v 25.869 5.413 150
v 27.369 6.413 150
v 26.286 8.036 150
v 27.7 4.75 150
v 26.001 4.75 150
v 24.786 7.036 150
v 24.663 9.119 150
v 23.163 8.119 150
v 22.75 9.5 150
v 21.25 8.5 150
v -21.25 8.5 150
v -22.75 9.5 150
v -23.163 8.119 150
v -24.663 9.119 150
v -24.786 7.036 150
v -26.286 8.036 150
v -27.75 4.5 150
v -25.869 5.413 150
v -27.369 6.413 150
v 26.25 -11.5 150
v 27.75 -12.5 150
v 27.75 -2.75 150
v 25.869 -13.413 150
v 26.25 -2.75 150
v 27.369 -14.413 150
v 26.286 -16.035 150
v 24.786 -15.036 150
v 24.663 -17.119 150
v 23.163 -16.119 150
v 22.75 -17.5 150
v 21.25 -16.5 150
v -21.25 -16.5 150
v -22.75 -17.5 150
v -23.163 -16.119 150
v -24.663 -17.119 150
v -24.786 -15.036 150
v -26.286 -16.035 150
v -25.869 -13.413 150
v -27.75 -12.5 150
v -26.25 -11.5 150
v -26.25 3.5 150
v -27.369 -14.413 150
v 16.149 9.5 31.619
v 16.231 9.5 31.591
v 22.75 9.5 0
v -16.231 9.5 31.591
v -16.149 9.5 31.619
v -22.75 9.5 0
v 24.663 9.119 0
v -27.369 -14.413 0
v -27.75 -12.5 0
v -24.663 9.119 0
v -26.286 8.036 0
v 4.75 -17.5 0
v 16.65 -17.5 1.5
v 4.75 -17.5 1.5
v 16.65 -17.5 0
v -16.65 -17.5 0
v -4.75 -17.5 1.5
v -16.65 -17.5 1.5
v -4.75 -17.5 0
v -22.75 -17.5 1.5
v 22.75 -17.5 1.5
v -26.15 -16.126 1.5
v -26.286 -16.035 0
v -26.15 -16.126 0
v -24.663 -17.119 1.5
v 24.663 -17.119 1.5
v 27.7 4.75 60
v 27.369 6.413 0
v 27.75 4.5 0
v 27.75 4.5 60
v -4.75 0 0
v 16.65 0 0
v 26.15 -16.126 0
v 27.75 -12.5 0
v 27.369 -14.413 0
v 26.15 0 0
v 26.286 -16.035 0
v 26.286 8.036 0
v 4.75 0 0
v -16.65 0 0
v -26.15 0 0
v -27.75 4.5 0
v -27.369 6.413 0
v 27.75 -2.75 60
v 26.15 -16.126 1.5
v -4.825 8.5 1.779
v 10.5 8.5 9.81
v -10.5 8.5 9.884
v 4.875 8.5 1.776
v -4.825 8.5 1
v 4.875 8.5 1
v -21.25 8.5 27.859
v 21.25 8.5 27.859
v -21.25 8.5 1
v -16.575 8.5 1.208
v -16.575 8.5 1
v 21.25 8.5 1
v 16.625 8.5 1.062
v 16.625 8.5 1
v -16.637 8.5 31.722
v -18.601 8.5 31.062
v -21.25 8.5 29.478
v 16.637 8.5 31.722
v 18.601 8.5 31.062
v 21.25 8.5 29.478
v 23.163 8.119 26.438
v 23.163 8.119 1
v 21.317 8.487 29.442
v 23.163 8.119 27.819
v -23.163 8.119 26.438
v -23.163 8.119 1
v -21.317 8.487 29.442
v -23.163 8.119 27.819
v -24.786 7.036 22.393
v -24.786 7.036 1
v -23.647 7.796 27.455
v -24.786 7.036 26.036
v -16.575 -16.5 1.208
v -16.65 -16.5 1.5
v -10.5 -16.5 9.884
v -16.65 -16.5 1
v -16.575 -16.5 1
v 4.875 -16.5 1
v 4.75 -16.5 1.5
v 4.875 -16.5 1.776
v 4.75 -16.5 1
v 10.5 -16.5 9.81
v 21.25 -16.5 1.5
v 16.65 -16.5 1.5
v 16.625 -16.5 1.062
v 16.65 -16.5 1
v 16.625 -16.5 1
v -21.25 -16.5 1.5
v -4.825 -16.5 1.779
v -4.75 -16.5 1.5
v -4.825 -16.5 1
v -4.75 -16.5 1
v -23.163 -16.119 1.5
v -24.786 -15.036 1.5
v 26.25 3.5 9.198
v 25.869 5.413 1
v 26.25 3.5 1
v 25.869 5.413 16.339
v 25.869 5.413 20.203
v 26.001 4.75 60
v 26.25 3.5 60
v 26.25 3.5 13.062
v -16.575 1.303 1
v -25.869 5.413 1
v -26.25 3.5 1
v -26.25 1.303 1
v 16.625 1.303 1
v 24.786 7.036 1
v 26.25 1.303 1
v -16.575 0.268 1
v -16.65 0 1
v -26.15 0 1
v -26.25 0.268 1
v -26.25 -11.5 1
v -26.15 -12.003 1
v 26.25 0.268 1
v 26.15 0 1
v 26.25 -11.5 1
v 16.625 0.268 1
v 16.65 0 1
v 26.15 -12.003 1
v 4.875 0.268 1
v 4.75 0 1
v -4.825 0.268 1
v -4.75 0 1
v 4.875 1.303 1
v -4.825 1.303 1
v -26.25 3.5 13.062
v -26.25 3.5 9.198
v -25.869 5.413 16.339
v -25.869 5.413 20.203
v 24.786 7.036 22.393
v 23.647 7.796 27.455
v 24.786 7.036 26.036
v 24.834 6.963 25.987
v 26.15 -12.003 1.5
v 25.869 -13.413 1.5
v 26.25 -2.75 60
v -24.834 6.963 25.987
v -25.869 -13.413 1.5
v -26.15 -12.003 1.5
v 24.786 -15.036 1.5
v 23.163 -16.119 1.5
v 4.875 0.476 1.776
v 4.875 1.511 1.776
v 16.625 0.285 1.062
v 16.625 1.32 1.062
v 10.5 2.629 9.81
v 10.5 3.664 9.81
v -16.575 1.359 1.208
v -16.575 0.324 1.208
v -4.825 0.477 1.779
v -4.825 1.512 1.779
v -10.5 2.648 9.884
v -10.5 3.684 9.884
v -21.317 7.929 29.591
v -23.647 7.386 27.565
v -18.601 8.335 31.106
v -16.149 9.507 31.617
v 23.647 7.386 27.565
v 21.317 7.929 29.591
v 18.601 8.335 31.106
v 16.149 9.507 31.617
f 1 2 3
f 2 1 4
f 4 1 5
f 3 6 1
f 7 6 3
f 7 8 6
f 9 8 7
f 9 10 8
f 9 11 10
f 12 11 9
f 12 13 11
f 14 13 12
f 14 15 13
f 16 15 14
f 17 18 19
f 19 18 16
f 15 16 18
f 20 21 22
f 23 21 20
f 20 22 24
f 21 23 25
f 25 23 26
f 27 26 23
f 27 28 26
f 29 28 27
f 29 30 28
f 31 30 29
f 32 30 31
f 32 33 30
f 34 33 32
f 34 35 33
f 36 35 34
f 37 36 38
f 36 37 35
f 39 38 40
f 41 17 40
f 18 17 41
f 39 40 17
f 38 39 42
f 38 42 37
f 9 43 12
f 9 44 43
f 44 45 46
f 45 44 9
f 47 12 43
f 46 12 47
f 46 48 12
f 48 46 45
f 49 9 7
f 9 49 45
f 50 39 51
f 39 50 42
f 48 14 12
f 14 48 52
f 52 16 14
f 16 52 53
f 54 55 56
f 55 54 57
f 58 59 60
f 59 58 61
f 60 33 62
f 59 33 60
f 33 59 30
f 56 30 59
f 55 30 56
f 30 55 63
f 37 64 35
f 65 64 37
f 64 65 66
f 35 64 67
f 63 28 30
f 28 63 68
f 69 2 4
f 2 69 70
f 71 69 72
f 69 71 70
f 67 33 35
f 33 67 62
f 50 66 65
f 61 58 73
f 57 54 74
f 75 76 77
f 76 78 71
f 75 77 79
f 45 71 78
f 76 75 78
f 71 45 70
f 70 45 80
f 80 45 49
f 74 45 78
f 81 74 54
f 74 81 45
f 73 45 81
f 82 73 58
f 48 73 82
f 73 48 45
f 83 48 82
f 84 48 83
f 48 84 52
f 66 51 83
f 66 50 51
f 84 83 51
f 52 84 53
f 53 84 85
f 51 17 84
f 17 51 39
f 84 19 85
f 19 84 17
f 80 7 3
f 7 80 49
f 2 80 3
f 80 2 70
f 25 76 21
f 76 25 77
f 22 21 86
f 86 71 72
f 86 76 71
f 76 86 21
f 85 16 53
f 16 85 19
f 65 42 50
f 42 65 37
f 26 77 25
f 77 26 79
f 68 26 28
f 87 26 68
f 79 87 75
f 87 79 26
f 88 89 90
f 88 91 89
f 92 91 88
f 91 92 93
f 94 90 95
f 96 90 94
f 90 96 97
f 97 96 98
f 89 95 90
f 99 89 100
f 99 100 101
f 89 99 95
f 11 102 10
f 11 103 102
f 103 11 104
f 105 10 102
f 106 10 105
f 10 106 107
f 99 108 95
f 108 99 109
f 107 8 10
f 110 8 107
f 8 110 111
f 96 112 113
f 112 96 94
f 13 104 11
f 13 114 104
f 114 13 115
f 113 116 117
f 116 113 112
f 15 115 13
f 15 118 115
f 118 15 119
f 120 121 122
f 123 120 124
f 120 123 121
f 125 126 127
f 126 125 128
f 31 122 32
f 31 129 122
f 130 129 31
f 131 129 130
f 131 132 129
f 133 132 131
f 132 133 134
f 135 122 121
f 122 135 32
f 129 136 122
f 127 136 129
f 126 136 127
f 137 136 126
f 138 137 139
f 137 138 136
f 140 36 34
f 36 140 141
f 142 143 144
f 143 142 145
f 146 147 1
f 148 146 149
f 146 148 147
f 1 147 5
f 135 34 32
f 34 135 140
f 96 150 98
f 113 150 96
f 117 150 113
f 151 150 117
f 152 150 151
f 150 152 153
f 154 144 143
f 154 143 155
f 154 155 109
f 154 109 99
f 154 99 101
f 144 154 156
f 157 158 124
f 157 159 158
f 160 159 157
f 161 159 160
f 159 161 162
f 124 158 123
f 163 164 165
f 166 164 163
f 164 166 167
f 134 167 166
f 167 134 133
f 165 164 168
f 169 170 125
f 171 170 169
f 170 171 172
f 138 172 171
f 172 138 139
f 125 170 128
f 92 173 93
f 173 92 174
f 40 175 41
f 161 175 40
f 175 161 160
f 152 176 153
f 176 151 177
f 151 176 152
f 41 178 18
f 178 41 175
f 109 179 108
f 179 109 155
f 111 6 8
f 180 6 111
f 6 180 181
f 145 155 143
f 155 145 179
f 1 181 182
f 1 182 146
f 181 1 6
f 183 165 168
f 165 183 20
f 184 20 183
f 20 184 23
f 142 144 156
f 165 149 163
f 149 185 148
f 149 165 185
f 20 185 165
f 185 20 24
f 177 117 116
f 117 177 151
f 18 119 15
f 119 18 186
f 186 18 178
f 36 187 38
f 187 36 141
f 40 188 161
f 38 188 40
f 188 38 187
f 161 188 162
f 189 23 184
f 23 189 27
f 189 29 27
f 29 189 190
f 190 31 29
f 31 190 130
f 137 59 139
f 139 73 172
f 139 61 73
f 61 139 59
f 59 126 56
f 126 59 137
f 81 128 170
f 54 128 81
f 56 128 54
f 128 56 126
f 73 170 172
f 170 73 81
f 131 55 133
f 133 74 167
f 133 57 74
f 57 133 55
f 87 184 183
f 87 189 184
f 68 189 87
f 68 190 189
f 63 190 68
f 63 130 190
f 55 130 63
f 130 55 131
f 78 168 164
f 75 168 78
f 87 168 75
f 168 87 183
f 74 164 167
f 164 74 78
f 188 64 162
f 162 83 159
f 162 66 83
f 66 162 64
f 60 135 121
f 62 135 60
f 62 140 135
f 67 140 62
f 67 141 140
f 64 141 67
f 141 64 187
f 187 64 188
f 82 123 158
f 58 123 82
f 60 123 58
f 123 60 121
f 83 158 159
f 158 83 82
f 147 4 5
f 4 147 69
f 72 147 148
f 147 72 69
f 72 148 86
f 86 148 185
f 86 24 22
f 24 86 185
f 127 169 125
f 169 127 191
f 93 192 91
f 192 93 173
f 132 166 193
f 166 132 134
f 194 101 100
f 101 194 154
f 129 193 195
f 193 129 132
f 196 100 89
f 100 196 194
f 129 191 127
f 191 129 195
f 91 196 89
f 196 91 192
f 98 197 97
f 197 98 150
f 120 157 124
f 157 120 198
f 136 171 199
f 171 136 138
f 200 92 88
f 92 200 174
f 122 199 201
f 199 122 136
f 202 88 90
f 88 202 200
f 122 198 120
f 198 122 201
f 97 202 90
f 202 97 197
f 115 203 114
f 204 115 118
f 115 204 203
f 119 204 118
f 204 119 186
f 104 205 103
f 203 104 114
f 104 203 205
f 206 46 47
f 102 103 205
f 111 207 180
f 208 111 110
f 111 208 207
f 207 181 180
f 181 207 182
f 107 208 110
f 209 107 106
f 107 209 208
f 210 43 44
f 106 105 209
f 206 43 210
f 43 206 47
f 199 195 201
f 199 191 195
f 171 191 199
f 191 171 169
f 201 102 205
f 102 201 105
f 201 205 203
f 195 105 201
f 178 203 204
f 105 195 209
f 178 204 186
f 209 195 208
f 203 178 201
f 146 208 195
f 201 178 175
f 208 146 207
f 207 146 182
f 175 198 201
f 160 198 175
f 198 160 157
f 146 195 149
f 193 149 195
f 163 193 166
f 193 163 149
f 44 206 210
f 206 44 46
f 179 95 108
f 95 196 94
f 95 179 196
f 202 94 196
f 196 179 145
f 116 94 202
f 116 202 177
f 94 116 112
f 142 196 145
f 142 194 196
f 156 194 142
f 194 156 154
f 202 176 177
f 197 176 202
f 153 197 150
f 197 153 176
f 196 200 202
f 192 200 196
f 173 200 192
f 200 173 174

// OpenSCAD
difference() {
    // Outer volume
    hull(){
        translate([-22.75,4.5,0]) cylinder(r=5,h=150);
        translate([-22.75,-12.5,0]) cylinder(r=5,h=150);
        translate([22.75,-12.5,0]) cylinder(r=5,h=150);
        translate([22.75,4.5,0]) cylinder(r=5,h=150);
    }
    
    // Inner space
    hull(){
        translate([-21.25,3.5,1]) cylinder(r=5,h=150);
        translate([-21.25,-11.5,1]) cylinder(r=5,h=150);
        translate([21.25,-11.5,1]) cylinder(r=5,h=150);
        translate([21.25,3.5,1]) cylinder(r=5,h=150);
    }
    
    // Middle claw slot
    translate([0,-17.5,0]) scale([9.5,35,3]) cube(1,1,1,center=true);
    
    // Right claw slot
    translate([21.4,-17.5,0]) scale([9.5,35,3]) cube(1,1,1,center=true);
    
    // Left claw slot
    translate([-21.4,-17.5,0]) scale([9.5,35,3]) cube(1,1,1,center=true);
    
    // Servo lever opening
    translate([24,1,160]) scale([9.5,7.5,200]) cube(1,1,1,center=true);
}

module fillet(r, h) {
    translate([r / 2, r / 2, 0])

        difference() {
            cube([r + 0.01, r + 0.01, h], center = true);

            translate([r/2, r/2, 0])
                cylinder(r = r, h = h + 1, center = true);

        }
}

// Right guide pyramid
difference() {
    translate([10.75,-4,5]) scale([11.75,25,10]) cube(1,1,1,center=true);
    translate([12,0,19]) rotate([0,55,0]) scale([40,35,13]) cube(1,1,1,center=true);
    translate([9,0,19]) rotate([0,-55,0]) scale([40,35,13]) cube(1,1,1,center=true);
}

// Left guide pyramid
difference() {
    translate([-10.7,-4,5]) scale([11.75,25,10]) cube(1,1,1,center=true);
    translate([-12,0,19]) rotate([0,55,0]) scale([40,35,8]) cube(1,1,1,center=true);
    translate([-9,0,19]) rotate([0,-55,0]) scale([40,35,8]) cube(1,1,1,center=true);
}

// Top guide plate
rotate([-15,0,0]) difference() {
    translate([-55/2,0,.5]) scale([55,1,32.5]) cube(1,1,1);
    translate([-55/2,0,33.5]) rotate([0,90,-90]) fillet(15,25);
    translate([55/2,0,33.5]) rotate([0,90,90]) fillet(15,25);
}
